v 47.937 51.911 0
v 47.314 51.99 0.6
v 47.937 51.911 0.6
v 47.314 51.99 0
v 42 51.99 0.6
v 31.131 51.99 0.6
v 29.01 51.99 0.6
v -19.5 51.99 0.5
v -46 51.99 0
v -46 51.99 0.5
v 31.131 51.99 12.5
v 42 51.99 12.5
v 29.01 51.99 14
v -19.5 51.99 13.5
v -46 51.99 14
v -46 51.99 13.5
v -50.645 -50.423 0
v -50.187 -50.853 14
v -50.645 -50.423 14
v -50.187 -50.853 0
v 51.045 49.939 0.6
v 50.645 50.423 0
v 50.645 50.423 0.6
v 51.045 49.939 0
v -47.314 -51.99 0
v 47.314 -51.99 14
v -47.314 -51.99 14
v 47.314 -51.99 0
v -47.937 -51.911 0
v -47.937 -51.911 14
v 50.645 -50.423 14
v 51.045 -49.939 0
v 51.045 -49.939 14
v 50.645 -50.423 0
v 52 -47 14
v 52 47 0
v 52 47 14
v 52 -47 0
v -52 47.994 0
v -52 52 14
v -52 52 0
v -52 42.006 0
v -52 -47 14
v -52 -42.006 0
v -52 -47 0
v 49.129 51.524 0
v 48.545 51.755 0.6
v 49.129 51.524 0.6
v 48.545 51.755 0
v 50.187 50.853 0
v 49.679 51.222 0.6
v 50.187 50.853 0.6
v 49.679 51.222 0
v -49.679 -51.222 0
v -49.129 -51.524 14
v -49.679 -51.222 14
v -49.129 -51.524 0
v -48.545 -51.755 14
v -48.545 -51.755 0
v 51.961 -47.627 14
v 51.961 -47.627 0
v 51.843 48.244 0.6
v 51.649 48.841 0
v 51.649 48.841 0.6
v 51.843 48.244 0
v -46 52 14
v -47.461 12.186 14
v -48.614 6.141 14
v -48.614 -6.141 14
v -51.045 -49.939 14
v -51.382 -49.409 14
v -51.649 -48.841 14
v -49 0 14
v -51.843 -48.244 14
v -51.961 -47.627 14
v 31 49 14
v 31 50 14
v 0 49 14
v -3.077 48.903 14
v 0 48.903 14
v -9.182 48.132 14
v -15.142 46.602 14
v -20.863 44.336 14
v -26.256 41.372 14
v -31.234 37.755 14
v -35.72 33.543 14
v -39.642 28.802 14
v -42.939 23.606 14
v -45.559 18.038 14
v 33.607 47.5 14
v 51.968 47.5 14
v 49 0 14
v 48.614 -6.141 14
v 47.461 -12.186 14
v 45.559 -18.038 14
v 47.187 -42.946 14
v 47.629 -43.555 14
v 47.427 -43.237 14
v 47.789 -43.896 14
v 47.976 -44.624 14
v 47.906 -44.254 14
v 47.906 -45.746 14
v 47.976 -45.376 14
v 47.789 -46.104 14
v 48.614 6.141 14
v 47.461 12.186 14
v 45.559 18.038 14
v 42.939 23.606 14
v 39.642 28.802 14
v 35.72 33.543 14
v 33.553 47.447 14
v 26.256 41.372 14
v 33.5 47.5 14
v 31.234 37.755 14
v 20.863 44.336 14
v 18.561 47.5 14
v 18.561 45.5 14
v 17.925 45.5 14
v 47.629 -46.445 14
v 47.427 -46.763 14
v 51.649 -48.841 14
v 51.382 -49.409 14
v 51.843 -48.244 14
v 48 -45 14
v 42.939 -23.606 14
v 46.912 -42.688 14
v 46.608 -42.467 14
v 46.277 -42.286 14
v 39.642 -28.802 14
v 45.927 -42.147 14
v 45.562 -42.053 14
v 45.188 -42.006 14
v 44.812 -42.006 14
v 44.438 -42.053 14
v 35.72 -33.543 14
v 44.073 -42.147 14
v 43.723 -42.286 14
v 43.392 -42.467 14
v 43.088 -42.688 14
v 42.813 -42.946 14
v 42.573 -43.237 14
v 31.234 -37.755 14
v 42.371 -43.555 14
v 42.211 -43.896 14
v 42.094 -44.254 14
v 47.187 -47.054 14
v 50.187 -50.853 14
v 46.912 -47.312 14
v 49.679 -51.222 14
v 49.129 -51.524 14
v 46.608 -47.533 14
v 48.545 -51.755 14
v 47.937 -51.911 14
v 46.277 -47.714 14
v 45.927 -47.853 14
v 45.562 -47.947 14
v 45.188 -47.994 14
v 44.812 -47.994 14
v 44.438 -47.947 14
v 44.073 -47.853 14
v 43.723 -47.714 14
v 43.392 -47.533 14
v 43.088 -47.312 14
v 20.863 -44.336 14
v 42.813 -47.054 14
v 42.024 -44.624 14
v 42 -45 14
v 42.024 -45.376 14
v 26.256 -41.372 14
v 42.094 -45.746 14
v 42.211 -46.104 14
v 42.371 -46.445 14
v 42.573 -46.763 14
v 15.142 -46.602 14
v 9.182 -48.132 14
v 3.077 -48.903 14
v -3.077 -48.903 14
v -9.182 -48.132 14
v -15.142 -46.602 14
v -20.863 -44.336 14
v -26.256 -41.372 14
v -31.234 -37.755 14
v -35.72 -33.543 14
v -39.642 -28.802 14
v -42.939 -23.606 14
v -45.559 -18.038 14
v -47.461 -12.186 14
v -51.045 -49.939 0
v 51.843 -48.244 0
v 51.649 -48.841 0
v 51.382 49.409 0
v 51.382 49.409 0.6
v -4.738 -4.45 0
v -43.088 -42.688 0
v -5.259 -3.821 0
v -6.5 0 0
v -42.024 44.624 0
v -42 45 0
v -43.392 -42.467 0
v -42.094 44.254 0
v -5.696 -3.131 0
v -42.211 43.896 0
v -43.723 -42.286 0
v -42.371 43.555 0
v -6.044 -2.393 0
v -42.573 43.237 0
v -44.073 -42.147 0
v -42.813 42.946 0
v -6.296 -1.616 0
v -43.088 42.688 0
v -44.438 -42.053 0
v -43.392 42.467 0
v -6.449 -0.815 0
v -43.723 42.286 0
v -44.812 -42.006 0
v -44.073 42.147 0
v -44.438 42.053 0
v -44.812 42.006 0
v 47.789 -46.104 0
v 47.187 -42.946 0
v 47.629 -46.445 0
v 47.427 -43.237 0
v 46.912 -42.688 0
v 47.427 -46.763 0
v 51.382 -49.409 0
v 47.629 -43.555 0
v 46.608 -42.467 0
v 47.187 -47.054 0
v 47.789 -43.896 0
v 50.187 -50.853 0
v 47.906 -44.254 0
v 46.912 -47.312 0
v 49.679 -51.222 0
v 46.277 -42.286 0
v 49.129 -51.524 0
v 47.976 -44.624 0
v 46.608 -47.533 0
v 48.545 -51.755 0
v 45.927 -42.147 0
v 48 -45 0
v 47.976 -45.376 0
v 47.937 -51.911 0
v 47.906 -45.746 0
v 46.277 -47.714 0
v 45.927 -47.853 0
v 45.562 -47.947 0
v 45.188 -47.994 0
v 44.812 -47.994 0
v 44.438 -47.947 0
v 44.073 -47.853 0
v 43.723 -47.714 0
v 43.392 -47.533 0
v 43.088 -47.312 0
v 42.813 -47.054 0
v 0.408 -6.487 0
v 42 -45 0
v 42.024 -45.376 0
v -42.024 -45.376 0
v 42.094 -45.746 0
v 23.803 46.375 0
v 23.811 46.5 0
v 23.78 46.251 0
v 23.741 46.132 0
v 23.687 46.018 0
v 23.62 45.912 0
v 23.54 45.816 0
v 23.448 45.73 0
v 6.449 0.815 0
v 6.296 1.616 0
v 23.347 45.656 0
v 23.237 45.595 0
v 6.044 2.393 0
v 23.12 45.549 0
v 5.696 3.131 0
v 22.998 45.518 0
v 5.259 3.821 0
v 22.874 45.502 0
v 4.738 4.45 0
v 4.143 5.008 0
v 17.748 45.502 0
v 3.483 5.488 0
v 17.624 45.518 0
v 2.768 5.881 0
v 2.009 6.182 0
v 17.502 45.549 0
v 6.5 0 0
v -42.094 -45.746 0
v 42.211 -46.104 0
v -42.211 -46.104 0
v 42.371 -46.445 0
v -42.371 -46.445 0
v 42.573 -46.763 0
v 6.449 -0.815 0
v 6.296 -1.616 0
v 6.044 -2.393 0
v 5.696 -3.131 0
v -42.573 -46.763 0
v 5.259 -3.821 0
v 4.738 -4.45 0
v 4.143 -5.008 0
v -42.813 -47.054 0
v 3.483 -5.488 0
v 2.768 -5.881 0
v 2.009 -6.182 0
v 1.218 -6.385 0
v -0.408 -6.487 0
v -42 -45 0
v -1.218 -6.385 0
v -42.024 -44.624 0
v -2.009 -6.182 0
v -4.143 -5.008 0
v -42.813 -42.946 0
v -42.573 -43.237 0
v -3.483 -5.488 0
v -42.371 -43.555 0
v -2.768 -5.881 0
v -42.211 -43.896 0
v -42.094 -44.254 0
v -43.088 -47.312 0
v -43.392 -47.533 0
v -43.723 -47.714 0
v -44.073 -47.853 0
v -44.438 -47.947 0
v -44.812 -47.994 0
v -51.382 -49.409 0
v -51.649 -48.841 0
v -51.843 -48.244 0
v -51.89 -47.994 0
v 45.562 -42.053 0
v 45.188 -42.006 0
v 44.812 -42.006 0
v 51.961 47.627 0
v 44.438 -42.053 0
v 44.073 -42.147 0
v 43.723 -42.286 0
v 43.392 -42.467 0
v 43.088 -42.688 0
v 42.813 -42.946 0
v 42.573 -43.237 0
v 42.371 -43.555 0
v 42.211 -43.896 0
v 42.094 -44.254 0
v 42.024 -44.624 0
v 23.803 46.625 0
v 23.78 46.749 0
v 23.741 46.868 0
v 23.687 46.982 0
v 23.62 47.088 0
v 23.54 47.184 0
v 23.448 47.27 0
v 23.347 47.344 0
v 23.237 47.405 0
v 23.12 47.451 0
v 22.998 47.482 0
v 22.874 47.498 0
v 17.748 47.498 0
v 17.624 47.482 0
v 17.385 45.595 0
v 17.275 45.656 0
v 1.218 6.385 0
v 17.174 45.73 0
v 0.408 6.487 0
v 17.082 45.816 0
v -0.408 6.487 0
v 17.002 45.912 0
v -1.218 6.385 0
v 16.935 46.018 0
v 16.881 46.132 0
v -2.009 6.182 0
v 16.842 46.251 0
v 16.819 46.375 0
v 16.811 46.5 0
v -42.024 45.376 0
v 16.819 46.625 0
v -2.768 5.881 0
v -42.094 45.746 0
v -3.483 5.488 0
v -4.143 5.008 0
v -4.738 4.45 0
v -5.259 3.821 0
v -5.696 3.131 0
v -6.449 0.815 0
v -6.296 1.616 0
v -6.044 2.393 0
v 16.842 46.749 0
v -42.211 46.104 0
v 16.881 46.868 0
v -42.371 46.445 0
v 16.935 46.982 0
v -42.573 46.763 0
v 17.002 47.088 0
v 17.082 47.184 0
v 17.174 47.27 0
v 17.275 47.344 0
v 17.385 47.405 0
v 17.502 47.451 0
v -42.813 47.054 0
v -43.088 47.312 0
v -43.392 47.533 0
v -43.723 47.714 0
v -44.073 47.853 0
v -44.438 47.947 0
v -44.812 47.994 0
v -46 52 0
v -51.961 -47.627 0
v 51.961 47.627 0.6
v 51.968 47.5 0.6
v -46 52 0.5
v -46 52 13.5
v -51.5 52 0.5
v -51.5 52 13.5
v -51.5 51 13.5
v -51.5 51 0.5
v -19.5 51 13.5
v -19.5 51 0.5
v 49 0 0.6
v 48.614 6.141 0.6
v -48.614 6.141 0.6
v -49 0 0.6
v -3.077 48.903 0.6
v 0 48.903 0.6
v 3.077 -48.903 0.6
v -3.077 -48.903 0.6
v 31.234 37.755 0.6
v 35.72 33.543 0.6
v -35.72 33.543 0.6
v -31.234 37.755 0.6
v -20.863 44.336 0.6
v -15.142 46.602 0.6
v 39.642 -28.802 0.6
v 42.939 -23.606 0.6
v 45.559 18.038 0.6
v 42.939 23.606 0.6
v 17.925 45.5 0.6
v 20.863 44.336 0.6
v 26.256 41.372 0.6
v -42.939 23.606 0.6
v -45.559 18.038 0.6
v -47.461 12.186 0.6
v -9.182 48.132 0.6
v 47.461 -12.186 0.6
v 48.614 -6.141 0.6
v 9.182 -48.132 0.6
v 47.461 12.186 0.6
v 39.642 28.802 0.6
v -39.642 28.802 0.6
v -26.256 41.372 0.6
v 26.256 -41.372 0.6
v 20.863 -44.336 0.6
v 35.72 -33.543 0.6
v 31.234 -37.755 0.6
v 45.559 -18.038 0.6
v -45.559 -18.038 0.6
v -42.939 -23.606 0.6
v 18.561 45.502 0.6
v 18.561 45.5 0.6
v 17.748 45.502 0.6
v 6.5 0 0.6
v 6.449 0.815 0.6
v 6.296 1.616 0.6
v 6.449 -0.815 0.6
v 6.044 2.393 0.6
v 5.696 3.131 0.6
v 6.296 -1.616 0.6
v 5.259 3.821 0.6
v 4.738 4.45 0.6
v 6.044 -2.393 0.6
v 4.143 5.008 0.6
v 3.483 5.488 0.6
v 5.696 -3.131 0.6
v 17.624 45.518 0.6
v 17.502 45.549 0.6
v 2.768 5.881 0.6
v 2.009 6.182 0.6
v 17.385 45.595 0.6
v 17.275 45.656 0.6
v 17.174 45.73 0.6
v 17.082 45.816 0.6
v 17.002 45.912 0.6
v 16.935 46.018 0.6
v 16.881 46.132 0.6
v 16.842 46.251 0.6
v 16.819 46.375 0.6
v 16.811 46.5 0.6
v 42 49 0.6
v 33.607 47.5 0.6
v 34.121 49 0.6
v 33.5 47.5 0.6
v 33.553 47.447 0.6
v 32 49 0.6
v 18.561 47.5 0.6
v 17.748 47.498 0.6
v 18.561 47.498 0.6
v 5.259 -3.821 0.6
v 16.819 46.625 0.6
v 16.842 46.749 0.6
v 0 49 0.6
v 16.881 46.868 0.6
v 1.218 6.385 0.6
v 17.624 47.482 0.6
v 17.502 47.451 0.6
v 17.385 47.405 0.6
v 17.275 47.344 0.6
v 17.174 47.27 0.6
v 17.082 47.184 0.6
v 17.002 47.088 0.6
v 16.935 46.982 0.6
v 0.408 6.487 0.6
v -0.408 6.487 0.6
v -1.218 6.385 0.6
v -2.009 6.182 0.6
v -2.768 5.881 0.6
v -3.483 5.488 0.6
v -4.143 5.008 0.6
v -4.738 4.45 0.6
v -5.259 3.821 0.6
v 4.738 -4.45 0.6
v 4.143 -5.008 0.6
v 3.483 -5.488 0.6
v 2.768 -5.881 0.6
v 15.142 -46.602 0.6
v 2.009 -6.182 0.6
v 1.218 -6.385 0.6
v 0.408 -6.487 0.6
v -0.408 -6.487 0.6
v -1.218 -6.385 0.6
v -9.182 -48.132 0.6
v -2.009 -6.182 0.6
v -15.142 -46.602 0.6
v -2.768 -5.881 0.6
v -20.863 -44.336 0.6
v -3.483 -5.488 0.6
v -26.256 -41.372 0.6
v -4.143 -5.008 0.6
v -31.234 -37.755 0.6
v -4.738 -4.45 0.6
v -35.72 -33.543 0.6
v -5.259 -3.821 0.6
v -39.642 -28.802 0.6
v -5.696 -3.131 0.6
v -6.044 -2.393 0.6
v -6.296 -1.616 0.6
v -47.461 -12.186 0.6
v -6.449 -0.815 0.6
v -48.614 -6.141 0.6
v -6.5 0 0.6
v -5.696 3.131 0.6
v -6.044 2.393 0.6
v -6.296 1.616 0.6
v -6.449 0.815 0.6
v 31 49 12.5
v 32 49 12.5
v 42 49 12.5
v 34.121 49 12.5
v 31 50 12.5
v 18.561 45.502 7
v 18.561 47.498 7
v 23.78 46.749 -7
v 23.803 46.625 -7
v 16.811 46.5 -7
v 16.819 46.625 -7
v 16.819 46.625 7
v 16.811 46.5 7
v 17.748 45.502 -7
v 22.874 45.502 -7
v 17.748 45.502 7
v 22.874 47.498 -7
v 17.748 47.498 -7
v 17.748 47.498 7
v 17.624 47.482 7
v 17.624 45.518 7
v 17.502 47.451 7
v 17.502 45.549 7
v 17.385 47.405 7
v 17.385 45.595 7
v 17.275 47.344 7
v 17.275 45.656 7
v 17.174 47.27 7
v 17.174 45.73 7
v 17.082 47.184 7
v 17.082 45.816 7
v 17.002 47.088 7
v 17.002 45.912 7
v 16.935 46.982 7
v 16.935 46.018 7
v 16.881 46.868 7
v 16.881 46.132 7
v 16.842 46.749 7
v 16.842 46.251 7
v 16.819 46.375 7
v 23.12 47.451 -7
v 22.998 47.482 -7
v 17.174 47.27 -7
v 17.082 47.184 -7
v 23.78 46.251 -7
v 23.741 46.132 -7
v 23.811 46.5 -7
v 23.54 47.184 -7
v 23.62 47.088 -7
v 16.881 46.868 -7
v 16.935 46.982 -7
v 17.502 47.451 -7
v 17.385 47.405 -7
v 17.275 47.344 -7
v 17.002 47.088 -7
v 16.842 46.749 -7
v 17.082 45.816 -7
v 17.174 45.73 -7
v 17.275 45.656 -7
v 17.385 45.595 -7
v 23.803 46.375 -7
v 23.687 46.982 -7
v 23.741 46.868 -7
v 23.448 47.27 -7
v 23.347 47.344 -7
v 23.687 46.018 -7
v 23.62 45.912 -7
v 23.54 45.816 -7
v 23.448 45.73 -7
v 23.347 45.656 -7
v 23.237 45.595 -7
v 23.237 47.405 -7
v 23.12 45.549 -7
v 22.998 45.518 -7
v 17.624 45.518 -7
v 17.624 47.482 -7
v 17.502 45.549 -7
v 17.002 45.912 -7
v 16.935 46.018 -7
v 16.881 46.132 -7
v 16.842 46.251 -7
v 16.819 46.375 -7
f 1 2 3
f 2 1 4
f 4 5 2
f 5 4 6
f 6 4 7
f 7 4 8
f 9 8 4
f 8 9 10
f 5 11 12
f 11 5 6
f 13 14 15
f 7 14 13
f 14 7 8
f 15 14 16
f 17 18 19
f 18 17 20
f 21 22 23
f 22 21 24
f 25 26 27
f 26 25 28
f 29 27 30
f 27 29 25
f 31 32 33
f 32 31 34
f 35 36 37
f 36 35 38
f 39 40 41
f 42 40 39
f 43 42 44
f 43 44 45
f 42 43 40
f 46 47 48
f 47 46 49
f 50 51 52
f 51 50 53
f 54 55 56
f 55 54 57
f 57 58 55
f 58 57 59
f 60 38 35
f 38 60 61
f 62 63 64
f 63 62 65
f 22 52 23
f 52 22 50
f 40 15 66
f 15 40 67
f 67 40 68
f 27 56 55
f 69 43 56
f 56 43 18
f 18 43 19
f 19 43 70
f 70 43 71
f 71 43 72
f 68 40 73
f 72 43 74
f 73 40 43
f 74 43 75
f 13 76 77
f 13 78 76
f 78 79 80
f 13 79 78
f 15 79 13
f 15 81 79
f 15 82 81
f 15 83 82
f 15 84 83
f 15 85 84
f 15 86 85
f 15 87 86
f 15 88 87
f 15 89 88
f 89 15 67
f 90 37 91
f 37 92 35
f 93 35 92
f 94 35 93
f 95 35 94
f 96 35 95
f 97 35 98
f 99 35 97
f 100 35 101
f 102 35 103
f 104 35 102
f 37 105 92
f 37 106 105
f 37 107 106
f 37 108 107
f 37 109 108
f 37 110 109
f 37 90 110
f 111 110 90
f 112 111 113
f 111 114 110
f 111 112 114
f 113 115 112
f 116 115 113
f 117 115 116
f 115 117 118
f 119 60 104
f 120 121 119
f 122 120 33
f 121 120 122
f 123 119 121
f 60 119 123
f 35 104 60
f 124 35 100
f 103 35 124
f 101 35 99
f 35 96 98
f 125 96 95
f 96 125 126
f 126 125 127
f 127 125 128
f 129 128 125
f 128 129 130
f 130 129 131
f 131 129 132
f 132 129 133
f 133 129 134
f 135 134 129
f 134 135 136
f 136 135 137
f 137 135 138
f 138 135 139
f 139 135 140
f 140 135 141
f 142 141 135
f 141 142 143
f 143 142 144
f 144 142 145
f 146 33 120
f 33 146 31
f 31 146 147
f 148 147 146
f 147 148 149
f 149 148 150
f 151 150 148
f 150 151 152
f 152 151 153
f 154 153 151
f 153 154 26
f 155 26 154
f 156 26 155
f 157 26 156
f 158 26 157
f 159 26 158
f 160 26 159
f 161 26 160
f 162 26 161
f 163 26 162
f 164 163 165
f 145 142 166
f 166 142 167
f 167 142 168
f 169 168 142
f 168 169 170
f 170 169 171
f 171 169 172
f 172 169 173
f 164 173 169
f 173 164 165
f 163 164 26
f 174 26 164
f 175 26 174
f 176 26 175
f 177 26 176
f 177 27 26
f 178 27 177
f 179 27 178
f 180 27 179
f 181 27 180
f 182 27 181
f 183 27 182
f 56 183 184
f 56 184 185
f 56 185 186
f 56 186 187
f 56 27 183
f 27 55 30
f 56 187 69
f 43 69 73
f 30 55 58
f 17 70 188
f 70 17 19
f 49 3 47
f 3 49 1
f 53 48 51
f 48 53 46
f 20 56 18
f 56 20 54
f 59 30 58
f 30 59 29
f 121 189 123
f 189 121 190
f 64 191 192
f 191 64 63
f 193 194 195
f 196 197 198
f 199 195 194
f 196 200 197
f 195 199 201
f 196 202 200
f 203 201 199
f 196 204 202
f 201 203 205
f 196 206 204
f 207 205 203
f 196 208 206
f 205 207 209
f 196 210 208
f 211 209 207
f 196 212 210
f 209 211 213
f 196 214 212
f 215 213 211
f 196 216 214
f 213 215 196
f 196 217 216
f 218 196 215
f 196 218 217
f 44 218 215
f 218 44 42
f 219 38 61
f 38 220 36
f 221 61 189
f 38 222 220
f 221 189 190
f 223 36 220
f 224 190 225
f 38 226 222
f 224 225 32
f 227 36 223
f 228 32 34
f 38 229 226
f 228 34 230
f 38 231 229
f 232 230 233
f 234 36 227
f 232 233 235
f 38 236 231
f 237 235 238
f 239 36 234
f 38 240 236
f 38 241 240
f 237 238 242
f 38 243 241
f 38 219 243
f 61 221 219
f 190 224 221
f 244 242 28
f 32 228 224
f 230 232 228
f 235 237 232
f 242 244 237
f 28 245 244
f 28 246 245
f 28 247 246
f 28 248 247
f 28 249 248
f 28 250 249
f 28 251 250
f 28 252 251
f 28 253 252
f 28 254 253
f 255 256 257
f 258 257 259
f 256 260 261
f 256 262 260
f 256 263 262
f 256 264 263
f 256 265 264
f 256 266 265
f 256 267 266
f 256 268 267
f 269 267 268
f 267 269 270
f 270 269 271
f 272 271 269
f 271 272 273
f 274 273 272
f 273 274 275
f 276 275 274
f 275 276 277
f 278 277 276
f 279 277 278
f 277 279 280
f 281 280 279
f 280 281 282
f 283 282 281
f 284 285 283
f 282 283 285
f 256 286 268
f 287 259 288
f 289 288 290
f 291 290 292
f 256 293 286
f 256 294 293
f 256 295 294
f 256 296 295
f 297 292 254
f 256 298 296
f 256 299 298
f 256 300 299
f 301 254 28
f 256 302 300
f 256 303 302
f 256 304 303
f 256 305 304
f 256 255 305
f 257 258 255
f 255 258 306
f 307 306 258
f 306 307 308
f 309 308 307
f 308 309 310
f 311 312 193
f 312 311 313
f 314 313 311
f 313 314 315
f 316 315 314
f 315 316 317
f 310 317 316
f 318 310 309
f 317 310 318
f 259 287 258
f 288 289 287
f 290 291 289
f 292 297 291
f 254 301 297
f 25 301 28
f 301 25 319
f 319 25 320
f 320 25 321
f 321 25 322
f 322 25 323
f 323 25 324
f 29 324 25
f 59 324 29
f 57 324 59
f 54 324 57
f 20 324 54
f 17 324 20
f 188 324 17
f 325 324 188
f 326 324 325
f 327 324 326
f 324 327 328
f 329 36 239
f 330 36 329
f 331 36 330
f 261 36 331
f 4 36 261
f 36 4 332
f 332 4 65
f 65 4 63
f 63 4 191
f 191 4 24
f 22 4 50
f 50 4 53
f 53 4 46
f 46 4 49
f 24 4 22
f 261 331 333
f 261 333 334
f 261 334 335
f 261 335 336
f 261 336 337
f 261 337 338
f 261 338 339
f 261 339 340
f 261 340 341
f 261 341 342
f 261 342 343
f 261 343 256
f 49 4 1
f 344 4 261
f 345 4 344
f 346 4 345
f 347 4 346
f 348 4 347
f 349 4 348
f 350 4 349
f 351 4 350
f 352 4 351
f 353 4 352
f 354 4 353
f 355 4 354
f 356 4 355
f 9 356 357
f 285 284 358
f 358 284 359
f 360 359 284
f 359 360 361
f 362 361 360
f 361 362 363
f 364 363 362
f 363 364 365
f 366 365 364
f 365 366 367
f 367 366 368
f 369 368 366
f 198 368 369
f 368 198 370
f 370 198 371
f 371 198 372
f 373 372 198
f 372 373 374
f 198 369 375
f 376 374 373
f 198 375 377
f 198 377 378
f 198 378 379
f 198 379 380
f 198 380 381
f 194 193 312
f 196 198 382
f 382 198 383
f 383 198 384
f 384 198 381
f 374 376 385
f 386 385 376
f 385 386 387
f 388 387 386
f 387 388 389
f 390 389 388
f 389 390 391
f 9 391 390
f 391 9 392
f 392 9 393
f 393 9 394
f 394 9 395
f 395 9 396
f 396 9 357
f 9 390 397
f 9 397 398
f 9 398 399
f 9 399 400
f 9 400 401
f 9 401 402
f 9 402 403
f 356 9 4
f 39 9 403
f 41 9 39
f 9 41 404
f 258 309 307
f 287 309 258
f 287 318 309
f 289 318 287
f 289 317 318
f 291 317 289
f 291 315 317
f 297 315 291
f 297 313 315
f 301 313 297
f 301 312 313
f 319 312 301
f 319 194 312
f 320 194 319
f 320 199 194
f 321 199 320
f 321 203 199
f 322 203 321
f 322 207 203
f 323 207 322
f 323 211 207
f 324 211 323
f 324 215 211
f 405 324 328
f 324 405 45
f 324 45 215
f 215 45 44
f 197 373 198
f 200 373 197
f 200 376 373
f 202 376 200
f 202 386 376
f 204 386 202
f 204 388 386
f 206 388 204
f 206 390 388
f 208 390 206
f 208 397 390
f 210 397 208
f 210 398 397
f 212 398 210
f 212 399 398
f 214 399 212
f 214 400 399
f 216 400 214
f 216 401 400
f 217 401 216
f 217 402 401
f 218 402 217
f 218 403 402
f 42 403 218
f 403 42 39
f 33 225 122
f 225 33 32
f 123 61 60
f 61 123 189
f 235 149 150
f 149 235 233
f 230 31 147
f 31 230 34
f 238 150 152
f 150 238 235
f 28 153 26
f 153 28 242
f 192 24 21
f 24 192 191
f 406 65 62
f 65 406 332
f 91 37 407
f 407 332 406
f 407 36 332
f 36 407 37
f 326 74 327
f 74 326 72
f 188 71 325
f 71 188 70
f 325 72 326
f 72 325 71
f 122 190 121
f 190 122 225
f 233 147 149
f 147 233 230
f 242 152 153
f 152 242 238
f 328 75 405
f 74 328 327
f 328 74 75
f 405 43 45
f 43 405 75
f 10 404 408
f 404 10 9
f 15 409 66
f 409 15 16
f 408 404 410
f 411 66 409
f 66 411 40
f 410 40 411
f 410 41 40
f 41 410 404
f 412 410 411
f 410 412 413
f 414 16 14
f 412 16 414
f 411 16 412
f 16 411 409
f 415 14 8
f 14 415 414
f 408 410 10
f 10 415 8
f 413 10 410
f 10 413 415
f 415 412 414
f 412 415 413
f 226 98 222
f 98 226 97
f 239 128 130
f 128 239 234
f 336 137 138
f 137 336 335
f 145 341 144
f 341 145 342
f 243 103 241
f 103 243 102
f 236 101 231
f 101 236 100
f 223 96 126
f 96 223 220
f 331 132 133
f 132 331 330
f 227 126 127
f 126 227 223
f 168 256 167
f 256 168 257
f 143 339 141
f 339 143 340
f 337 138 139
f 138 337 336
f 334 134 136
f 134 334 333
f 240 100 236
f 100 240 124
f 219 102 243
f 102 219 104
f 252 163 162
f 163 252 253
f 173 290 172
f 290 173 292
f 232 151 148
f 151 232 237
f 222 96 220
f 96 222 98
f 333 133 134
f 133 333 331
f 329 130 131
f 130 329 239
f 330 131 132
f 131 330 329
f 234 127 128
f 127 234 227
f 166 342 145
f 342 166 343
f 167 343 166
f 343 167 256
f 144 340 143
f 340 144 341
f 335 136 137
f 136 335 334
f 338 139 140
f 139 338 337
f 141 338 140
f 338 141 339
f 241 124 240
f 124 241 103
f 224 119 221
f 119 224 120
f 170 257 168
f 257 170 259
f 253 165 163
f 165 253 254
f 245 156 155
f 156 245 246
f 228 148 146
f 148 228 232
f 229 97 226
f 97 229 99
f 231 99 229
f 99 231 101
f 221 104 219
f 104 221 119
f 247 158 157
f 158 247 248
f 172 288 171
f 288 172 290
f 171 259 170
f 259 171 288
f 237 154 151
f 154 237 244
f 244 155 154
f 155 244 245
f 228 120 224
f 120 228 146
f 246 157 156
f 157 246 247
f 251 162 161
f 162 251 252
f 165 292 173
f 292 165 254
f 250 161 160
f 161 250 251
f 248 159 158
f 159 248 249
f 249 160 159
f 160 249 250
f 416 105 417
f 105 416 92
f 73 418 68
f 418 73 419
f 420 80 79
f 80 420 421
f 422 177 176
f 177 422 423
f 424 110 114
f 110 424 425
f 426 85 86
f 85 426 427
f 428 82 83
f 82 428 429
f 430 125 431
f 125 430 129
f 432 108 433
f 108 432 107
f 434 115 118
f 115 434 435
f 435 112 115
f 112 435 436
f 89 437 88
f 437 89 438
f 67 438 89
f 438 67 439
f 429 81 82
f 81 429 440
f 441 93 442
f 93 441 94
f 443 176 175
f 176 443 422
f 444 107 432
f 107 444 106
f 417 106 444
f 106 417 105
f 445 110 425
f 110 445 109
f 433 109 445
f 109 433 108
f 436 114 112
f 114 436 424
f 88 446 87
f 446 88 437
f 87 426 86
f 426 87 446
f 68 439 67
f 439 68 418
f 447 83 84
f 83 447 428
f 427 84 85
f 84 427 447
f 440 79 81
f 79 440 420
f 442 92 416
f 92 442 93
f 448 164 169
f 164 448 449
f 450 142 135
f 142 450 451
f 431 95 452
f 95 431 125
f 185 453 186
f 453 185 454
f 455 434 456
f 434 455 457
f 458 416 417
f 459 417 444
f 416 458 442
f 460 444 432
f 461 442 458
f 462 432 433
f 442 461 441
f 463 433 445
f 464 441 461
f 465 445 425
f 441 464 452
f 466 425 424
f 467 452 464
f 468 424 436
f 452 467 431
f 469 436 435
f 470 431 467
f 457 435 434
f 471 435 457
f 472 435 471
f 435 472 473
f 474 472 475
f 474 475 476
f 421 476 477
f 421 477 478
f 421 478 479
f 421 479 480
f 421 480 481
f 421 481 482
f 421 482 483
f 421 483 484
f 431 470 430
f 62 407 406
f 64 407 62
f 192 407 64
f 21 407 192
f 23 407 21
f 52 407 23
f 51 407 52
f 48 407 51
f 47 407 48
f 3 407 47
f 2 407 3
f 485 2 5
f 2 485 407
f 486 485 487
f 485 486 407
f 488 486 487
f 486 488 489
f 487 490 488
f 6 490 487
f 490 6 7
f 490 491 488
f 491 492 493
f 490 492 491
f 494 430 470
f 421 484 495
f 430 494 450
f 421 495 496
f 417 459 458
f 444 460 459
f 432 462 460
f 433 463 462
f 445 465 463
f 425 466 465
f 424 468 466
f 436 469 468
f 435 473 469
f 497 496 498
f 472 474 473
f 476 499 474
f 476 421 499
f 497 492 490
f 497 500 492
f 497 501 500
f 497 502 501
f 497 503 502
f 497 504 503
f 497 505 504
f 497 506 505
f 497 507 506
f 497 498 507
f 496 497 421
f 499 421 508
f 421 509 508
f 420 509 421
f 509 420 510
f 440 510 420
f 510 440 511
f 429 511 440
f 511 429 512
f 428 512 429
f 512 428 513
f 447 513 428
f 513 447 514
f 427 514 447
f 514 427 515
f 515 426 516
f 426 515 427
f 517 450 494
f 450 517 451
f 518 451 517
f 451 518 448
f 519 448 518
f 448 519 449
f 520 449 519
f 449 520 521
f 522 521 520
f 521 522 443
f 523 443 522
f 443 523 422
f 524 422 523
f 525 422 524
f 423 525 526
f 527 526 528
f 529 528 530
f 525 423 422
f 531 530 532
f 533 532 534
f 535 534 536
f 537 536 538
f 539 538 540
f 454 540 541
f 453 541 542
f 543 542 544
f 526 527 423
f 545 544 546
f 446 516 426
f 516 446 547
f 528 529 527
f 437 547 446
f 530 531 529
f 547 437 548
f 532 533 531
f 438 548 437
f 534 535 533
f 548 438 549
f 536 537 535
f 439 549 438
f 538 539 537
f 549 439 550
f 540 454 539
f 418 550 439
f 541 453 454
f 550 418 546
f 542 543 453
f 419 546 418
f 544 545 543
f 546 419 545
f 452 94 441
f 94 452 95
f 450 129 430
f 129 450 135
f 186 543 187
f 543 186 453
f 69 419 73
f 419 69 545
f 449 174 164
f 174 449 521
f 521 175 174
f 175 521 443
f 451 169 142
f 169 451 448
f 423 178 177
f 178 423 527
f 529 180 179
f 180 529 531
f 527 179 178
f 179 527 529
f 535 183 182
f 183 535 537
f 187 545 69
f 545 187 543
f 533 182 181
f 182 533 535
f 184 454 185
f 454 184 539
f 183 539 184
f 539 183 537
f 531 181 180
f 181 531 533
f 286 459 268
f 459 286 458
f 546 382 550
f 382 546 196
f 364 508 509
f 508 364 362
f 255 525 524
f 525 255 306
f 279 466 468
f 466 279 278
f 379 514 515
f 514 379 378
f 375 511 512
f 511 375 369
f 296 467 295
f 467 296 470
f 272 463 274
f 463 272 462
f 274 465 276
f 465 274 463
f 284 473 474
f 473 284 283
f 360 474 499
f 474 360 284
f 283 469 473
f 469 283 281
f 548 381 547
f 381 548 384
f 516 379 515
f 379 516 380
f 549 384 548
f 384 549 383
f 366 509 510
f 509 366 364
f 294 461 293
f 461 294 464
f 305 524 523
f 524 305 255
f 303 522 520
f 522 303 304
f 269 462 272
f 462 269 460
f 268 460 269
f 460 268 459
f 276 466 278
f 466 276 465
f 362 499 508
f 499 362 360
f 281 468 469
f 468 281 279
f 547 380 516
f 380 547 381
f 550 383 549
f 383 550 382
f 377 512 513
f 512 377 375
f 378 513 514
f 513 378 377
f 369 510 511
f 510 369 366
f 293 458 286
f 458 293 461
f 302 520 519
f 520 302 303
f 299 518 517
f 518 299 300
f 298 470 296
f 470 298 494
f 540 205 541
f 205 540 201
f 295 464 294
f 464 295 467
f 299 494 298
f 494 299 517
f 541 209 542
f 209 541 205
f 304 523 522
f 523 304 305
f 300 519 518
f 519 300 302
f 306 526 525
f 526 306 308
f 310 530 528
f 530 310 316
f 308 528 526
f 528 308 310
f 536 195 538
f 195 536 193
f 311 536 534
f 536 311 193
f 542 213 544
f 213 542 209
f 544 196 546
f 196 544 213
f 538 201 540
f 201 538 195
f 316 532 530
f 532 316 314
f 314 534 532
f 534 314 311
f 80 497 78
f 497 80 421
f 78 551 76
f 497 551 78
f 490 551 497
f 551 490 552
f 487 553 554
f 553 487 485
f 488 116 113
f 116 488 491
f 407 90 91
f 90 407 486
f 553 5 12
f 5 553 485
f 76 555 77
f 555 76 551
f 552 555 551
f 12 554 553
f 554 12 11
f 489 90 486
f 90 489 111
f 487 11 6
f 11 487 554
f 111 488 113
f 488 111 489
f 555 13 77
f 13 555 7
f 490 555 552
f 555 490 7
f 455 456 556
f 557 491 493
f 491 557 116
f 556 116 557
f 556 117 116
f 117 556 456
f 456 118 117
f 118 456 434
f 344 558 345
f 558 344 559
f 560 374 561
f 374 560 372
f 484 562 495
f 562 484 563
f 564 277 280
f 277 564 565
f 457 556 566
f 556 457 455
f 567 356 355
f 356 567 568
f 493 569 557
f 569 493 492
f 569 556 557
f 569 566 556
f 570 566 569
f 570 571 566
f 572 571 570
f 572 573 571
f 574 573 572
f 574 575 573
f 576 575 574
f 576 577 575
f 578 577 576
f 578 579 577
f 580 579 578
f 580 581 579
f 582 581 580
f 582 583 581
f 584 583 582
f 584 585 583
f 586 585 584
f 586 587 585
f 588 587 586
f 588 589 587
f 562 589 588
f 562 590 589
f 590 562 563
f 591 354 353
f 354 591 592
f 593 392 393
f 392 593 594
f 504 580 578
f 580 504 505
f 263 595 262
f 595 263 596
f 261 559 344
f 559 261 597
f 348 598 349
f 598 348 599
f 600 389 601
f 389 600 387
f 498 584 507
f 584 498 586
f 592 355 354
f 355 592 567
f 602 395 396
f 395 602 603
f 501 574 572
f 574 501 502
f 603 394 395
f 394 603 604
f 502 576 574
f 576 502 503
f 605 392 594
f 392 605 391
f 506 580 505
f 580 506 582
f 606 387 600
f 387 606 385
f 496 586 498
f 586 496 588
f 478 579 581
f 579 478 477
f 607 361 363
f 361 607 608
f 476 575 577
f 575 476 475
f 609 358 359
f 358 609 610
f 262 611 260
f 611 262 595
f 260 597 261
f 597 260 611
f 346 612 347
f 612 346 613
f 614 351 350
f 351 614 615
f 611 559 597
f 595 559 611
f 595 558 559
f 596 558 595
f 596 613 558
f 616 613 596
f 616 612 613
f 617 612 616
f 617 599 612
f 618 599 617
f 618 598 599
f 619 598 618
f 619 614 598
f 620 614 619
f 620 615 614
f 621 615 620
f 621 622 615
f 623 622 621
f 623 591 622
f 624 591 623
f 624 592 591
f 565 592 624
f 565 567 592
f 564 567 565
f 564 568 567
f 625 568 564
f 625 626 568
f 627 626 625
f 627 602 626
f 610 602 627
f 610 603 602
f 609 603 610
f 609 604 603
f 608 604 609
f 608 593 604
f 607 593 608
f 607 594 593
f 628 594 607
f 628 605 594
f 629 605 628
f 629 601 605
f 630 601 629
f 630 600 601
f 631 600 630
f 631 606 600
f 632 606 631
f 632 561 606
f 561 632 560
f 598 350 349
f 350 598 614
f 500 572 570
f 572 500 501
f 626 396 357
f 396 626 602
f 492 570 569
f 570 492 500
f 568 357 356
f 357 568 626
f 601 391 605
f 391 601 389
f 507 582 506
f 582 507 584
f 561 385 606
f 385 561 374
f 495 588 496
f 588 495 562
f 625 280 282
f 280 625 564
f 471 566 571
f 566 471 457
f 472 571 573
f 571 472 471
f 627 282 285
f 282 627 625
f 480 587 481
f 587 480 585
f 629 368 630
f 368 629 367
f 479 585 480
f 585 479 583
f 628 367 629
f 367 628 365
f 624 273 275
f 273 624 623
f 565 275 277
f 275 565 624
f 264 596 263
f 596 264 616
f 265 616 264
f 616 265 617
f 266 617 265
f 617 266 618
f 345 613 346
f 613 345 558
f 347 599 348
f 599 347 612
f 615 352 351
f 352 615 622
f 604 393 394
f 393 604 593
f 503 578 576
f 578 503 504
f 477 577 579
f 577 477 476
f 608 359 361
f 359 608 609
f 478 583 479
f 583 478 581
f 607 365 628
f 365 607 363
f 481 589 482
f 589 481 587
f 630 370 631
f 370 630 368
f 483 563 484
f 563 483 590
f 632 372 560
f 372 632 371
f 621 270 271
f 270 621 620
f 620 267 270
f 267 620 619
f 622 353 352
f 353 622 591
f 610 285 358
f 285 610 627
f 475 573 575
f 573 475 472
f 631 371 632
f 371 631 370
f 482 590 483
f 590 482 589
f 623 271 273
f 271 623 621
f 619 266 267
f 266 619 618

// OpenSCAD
$fn = 50;


union() {
	difference() {
		union() {
			hull() {
				translate(v = [-47.0000000000, 47.0000000000, 0]) {
					cylinder(h = 14, r = 5);
				}
				translate(v = [47.0000000000, 47.0000000000, 0]) {
					cylinder(h = 14, r = 5);
				}
				translate(v = [-47.0000000000, -47.0000000000, 0]) {
					cylinder(h = 14, r = 5);
				}
				translate(v = [47.0000000000, -47.0000000000, 0]) {
					cylinder(h = 14, r = 5);
				}
			}
			translate(v = [-52.0000000000, 46.0000000000, 0]) {
				cube(size = [6, 6, 14]);
			}
		}
		union() {
			translate(v = [-52.5000000000, -45.0000000000, -250.0000000000]) {
				rotate(a = [0, 0, 0]) {
					difference() {
						union() {
							hull() {
								translate(v = [7.5000000000, 0, 0]) {
									cylinder(h = 250, r = 3.0000000000, r1 = 3.0000000000, r2 = 3.0000000000);
								}
								translate(v = [-7.5000000000, 0, 0]) {
									cylinder(h = 250, r = 3.0000000000, r1 = 3.0000000000, r2 = 3.0000000000);
								}
							}
						}
						union();
					}
				}
			}
			translate(v = [-52.5000000000, 45.0000000000, -250.0000000000]) {
				rotate(a = [0, 0, 0]) {
					difference() {
						union() {
							hull() {
								translate(v = [7.5000000000, 0, 0]) {
									cylinder(h = 250, r = 3.0000000000, r1 = 3.0000000000, r2 = 3.0000000000);
								}
								translate(v = [-7.5000000000, 0, 0]) {
									cylinder(h = 250, r = 3.0000000000, r1 = 3.0000000000, r2 = 3.0000000000);
								}
							}
						}
						union();
					}
				}
			}
			translate(v = [-51.5000000000, 51.0000000000, 0.5000000000]) {
				cube(size = [32, 1, 13.0000000000]);
			}
			translate(v = [45.0000000000, -45.0000000000, 0]) {
				cylinder(h = 100, r = 3.0000000000);
			}
			translate(v = [0, 0, 0.6000000000]) {
				cylinder(h = 16.4000000000, r = 49.0000000000);
			}
			translate(v = [0, 0, -7.0000000000]) {
				cylinder(h = 14, r = 6.5000000000);
			}
			translate(v = [0.0000000000, 47.5000000000, 0.6000000000]) {
				cube(size = [52.0000000000, 1.5000000000, 16.4000000000]);
			}
			translate(v = [42.0000000000, 47.5000000000, 0.6000000000]) {
				cube(size = [10, 4.5000000000, 16.4000000000]);
			}
			translate(v = [31.0000000000, 47.5000000000, 12.5000000000]) {
				cube(size = [21, 4.5000000000, 1.5000000000]);
			}
			translate(v = [28.2500000000, 52.7500000000, 0.6000000000]) {
				rotate(a = [0, 0, -45]) {
					cube(size = [7.5000000000, 1.5000000000, 16.4000000000]);
				}
			}
			translate(v = [11.0610000000, 45.5000000000, 0.6000000000]) {
				cube(size = [7.5000000000, 2, 13.4000000000]);
			}
		}
	}
	union() {
		translate(v = [20.3110000000, 46.5000000000, -7.0000000000]) {
			rotate(a = [0, 0, 0]) {
				difference() {
					union() {
						#hull() {
							#translate(v = [2.5000000000, 0, 0]) {
								cylinder(h = 14, r = 1.0000000000, r1 = 1.0000000000, r2 = 1.0000000000);
							}
							#translate(v = [-2.5000000000, 0, 0]) {
								cylinder(h = 14, r = 1.0000000000, r1 = 1.0000000000, r2 = 1.0000000000);
							}
						}
					}
					union();
				}
			}
		}
	}
}
